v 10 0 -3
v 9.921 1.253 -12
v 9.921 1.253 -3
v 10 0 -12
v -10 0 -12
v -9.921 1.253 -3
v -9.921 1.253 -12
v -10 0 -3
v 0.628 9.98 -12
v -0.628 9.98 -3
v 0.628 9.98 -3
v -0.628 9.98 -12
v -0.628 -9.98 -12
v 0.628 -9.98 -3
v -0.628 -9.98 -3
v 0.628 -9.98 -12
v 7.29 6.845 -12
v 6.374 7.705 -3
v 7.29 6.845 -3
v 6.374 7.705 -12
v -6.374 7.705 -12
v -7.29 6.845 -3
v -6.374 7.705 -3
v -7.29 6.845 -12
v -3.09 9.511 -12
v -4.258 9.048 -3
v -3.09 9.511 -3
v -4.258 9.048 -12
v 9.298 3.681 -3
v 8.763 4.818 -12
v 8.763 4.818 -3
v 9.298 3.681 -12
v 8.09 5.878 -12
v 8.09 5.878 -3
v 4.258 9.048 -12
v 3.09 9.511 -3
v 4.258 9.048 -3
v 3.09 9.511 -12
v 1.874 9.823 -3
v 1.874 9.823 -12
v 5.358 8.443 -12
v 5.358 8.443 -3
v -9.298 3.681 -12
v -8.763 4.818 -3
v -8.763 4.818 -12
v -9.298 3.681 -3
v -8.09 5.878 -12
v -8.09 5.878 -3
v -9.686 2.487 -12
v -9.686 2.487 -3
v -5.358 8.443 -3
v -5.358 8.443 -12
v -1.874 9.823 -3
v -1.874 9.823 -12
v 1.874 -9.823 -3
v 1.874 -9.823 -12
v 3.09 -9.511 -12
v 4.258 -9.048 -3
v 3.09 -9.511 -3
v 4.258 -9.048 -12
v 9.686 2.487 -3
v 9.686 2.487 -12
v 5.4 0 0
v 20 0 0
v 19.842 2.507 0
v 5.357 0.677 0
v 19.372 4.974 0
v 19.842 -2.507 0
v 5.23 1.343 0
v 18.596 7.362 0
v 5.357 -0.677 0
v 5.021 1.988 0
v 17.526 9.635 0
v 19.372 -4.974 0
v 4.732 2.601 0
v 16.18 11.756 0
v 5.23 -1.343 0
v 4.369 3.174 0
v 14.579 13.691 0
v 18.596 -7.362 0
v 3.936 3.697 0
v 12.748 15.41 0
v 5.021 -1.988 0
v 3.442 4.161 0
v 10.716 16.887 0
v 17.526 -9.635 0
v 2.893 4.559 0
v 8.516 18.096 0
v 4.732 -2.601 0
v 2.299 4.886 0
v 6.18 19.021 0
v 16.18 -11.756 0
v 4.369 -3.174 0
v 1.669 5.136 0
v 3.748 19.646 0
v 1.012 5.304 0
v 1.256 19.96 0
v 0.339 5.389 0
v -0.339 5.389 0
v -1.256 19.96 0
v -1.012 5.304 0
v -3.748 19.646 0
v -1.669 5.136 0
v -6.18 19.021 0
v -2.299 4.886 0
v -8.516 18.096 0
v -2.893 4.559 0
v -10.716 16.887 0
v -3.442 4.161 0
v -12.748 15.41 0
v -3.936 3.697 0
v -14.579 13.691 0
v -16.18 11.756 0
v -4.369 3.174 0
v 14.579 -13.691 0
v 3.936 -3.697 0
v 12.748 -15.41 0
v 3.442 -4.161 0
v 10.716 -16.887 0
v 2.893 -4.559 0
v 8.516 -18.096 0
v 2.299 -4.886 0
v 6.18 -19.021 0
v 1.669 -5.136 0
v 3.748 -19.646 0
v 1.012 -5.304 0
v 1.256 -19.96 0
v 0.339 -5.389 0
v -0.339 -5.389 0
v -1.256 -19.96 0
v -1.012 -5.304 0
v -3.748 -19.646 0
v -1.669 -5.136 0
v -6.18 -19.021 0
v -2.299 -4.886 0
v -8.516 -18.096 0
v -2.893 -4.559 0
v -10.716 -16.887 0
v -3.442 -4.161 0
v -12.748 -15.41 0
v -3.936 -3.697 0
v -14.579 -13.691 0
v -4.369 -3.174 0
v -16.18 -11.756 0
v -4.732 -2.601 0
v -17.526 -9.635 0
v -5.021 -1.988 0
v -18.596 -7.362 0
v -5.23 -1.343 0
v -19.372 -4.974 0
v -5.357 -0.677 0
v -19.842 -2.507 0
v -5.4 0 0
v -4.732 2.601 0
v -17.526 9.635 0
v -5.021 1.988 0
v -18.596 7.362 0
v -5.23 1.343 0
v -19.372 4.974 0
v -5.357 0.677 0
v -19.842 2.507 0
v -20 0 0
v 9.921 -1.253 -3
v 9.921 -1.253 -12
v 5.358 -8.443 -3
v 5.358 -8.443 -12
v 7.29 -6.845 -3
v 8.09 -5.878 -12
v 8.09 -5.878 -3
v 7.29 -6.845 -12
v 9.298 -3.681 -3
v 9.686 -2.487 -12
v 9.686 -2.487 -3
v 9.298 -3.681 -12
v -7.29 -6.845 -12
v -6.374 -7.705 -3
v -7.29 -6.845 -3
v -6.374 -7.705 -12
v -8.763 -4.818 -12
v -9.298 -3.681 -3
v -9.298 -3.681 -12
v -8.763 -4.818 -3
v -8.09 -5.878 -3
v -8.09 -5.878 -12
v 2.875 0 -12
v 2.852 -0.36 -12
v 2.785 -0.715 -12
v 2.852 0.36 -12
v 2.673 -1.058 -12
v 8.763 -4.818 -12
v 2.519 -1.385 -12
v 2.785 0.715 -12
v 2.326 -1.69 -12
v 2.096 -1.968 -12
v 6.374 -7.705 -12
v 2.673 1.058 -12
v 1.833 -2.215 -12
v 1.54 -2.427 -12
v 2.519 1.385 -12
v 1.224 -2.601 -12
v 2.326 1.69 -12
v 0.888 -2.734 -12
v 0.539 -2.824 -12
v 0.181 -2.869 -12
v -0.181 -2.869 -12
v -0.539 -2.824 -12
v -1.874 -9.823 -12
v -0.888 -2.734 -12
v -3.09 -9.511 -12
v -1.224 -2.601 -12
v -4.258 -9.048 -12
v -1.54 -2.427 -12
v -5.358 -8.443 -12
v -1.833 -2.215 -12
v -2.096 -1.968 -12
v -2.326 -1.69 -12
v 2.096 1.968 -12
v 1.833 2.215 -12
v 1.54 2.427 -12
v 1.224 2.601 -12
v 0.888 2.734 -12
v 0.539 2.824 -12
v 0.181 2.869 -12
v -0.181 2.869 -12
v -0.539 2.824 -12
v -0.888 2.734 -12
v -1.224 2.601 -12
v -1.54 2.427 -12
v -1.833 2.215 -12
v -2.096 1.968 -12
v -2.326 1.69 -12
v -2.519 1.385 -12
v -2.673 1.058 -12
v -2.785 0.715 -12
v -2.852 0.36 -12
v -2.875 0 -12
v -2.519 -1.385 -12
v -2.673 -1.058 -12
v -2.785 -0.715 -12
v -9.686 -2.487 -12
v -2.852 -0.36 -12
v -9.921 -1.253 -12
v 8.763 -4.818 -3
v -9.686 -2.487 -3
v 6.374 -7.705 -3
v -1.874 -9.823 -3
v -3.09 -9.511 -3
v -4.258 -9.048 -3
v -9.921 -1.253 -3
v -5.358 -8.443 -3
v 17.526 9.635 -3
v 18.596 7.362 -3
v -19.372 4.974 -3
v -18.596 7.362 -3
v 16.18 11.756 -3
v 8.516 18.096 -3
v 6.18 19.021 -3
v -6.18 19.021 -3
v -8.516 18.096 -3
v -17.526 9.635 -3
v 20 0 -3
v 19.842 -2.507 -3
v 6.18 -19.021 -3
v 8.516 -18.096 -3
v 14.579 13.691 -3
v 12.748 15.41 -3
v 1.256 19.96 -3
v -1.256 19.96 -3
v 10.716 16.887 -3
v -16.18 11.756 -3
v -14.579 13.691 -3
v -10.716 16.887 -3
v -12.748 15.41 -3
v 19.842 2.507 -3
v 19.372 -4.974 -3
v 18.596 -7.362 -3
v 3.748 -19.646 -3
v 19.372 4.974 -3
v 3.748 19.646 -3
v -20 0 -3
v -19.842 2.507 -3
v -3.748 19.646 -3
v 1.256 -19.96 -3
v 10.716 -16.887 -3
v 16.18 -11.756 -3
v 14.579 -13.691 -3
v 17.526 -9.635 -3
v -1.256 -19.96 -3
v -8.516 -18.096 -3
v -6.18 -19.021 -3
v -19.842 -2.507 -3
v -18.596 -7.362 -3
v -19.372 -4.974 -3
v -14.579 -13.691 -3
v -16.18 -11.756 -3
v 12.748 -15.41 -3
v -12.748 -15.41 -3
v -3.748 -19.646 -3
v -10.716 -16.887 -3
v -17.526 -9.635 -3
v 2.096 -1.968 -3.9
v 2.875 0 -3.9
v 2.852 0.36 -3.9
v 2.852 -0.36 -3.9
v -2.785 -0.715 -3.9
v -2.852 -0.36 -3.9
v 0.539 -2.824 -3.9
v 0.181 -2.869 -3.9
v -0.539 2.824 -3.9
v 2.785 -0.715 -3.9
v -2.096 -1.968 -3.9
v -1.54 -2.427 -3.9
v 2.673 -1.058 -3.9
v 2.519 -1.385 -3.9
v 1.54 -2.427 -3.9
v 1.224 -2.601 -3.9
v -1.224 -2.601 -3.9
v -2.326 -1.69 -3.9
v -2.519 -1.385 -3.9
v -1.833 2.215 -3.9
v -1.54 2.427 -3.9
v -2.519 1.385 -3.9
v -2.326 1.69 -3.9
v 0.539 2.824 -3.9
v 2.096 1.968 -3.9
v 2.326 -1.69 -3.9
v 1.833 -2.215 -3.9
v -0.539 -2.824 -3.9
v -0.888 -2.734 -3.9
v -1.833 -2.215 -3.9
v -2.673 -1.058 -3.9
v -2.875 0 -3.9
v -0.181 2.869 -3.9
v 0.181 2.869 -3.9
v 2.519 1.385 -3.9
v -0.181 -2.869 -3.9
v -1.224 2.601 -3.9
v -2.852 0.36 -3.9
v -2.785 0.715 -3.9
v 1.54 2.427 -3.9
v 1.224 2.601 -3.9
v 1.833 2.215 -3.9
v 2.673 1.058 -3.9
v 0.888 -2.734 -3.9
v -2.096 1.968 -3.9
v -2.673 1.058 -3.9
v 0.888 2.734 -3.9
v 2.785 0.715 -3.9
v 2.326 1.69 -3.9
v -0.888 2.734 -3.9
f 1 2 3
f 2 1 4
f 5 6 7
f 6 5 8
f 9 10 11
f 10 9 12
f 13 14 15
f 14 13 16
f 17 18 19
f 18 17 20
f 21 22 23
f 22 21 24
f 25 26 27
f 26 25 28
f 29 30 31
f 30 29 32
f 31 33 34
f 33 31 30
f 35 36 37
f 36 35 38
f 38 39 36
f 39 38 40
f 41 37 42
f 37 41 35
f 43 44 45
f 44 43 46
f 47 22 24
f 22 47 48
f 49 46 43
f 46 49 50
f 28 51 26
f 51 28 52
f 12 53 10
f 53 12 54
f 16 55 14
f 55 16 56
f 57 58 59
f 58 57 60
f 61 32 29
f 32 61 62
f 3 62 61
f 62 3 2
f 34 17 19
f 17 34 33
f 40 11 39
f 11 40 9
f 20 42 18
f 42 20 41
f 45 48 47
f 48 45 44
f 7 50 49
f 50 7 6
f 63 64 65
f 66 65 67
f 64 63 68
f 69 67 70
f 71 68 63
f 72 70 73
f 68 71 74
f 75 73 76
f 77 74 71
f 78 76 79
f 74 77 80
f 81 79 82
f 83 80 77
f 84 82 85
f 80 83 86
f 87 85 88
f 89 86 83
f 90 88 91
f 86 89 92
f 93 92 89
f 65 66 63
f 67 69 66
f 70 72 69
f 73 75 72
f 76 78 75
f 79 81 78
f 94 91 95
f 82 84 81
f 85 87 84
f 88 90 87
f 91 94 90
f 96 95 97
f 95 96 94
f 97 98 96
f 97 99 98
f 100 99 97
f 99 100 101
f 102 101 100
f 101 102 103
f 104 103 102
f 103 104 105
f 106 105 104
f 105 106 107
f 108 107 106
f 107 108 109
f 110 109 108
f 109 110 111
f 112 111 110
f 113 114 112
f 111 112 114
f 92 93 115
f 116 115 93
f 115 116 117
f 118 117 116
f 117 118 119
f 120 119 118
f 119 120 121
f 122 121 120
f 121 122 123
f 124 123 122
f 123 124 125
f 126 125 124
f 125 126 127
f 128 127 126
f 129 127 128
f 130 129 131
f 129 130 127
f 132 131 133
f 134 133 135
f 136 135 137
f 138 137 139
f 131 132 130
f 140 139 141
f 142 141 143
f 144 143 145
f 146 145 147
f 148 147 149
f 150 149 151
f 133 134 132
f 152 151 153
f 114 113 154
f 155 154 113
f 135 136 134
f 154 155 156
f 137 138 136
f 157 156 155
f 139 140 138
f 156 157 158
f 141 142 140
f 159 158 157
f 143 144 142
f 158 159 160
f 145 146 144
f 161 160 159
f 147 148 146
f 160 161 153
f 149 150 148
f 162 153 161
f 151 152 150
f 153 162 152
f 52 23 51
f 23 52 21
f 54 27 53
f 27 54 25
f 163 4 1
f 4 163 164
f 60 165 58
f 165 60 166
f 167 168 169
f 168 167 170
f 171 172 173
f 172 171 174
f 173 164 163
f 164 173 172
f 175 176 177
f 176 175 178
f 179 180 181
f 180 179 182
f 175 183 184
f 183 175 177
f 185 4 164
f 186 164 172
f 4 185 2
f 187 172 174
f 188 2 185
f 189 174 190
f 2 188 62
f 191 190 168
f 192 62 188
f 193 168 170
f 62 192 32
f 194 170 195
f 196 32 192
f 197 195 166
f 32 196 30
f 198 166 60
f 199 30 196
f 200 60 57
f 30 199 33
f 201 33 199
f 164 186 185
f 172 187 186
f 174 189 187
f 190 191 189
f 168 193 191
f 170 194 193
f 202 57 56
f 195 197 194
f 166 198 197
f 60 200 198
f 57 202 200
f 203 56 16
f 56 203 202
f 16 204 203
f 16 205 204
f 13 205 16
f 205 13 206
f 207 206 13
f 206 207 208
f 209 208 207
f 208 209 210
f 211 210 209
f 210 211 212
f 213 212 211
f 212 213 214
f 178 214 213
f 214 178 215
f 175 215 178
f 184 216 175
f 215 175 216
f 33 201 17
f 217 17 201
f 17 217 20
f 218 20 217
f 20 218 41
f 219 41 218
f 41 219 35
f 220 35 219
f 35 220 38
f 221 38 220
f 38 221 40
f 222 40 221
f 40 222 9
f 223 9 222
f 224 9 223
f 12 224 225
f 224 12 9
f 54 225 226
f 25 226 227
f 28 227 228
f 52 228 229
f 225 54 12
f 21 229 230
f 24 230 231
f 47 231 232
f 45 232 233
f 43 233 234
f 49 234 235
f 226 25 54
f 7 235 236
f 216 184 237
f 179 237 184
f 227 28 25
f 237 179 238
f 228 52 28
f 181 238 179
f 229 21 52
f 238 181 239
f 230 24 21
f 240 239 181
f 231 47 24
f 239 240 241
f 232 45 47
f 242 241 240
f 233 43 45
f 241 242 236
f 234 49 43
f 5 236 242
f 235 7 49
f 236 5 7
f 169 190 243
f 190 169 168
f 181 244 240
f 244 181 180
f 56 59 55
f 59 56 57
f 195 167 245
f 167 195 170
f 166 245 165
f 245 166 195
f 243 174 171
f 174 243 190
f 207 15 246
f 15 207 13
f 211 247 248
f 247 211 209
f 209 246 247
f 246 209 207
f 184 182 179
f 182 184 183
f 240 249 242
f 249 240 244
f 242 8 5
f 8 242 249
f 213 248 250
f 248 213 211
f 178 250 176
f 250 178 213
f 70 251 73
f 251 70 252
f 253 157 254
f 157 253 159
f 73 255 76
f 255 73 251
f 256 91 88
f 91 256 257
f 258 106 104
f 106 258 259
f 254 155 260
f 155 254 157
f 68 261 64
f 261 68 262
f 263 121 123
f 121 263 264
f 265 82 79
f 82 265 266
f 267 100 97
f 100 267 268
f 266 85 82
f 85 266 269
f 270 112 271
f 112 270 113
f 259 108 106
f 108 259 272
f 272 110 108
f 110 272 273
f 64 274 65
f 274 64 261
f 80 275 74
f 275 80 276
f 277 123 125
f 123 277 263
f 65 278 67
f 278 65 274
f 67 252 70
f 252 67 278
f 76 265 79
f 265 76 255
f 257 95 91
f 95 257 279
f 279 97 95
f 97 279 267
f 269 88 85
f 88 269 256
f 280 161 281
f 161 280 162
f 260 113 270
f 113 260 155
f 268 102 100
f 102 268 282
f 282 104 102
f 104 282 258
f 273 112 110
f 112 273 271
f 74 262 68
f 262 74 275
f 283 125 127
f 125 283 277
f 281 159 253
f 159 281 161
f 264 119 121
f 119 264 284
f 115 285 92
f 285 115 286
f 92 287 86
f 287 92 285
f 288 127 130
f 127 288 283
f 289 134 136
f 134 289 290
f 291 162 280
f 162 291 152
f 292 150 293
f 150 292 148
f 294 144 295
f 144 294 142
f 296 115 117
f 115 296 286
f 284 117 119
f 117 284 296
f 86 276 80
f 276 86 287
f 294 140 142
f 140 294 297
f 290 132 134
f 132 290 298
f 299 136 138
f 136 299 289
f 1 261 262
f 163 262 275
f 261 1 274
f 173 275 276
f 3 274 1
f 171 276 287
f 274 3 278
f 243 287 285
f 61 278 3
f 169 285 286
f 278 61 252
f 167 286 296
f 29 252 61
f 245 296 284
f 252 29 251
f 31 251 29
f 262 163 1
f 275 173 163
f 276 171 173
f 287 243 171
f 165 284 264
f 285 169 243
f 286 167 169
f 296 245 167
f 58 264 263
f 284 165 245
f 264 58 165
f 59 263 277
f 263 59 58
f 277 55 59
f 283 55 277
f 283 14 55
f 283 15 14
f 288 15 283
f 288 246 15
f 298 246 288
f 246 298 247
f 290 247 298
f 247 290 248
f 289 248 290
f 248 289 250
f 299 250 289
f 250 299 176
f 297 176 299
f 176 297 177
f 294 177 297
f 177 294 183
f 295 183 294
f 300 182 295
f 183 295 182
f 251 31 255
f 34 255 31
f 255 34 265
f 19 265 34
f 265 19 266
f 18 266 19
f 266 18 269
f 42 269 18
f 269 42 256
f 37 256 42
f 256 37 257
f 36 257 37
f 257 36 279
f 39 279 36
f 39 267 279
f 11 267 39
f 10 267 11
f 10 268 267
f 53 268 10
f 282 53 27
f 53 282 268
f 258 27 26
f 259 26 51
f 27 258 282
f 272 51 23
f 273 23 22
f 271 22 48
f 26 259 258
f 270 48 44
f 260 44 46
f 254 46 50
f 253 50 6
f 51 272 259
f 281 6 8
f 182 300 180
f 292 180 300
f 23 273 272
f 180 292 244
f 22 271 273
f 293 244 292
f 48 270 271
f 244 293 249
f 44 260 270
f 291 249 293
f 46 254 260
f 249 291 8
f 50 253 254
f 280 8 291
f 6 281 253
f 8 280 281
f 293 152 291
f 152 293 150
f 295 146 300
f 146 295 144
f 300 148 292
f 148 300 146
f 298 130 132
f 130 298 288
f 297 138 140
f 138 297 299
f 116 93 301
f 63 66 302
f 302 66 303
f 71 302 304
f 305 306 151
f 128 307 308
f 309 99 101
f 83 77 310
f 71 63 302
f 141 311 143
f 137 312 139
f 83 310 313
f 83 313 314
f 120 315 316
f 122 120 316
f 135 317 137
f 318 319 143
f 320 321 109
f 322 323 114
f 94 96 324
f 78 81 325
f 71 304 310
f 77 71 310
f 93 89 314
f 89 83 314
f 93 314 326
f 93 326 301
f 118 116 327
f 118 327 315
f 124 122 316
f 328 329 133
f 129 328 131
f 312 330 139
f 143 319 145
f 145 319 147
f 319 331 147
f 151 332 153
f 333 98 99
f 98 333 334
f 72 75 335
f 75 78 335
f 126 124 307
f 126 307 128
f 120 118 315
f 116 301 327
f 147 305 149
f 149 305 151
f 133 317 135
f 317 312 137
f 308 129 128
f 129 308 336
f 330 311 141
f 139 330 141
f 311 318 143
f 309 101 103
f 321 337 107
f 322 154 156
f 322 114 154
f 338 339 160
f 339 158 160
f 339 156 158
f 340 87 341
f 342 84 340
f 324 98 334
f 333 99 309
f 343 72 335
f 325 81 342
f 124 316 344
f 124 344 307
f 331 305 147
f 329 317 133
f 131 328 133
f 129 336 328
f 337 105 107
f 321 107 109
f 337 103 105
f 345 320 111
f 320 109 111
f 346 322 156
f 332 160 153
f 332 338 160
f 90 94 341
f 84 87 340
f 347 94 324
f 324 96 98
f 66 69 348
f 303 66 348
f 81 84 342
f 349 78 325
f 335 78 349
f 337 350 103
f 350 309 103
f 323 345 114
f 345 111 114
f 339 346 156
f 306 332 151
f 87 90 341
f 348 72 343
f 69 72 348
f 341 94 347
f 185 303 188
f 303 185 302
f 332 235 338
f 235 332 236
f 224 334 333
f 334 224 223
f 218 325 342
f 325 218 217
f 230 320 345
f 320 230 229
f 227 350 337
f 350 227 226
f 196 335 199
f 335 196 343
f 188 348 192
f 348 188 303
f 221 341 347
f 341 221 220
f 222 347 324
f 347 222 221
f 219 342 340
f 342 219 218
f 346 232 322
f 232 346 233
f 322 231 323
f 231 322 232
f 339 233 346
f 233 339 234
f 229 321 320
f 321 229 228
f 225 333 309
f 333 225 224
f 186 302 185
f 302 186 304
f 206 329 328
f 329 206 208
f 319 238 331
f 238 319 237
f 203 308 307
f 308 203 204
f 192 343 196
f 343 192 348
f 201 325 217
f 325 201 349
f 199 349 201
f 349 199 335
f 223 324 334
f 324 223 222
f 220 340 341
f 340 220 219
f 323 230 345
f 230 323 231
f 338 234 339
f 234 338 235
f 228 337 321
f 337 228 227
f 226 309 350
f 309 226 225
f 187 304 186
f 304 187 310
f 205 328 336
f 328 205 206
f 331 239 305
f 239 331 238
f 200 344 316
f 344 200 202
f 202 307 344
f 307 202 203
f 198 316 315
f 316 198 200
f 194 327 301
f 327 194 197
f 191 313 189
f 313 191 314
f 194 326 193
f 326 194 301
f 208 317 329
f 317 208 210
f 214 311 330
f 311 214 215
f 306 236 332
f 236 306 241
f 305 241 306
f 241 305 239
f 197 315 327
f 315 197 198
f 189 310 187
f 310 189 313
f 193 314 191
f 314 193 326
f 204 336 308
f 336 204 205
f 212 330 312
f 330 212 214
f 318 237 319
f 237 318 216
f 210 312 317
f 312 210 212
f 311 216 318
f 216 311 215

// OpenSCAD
$fn = 50;


difference() {
	union() {
		translate(v = [0, 0, -12.0000000000]) {
			cylinder(h = 12, r = 10.0000000000);
		}
		translate(v = [0, 0, -3.0000000000]) {
			cylinder(h = 3, r = 20.0000000000);
		}
	}
	union() {
		translate(v = [0, 0, 0]) {
			rotate(a = [0, 0, 0]) {
				difference() {
					union() {
						#translate(v = [0, 0, -12.0000000000]) {
							cylinder(h = 12, r = 2.6000000000);
						}
						#translate(v = [0, 0, -3.9000000000]) {
							cylinder(h = 3.9000000000, r1 = 2.8750000000, r2 = 5.4000000000);
						}
						#translate(v = [0, 0, -12.0000000000]) {
							cylinder(h = 12, r = 2.8750000000);
						}
						#translate(v = [0, 0, -12.0000000000]) {
							cylinder(h = 12, r = 2.6000000000);
						}
					}
					union();
				}
			}
		}
	}
}
